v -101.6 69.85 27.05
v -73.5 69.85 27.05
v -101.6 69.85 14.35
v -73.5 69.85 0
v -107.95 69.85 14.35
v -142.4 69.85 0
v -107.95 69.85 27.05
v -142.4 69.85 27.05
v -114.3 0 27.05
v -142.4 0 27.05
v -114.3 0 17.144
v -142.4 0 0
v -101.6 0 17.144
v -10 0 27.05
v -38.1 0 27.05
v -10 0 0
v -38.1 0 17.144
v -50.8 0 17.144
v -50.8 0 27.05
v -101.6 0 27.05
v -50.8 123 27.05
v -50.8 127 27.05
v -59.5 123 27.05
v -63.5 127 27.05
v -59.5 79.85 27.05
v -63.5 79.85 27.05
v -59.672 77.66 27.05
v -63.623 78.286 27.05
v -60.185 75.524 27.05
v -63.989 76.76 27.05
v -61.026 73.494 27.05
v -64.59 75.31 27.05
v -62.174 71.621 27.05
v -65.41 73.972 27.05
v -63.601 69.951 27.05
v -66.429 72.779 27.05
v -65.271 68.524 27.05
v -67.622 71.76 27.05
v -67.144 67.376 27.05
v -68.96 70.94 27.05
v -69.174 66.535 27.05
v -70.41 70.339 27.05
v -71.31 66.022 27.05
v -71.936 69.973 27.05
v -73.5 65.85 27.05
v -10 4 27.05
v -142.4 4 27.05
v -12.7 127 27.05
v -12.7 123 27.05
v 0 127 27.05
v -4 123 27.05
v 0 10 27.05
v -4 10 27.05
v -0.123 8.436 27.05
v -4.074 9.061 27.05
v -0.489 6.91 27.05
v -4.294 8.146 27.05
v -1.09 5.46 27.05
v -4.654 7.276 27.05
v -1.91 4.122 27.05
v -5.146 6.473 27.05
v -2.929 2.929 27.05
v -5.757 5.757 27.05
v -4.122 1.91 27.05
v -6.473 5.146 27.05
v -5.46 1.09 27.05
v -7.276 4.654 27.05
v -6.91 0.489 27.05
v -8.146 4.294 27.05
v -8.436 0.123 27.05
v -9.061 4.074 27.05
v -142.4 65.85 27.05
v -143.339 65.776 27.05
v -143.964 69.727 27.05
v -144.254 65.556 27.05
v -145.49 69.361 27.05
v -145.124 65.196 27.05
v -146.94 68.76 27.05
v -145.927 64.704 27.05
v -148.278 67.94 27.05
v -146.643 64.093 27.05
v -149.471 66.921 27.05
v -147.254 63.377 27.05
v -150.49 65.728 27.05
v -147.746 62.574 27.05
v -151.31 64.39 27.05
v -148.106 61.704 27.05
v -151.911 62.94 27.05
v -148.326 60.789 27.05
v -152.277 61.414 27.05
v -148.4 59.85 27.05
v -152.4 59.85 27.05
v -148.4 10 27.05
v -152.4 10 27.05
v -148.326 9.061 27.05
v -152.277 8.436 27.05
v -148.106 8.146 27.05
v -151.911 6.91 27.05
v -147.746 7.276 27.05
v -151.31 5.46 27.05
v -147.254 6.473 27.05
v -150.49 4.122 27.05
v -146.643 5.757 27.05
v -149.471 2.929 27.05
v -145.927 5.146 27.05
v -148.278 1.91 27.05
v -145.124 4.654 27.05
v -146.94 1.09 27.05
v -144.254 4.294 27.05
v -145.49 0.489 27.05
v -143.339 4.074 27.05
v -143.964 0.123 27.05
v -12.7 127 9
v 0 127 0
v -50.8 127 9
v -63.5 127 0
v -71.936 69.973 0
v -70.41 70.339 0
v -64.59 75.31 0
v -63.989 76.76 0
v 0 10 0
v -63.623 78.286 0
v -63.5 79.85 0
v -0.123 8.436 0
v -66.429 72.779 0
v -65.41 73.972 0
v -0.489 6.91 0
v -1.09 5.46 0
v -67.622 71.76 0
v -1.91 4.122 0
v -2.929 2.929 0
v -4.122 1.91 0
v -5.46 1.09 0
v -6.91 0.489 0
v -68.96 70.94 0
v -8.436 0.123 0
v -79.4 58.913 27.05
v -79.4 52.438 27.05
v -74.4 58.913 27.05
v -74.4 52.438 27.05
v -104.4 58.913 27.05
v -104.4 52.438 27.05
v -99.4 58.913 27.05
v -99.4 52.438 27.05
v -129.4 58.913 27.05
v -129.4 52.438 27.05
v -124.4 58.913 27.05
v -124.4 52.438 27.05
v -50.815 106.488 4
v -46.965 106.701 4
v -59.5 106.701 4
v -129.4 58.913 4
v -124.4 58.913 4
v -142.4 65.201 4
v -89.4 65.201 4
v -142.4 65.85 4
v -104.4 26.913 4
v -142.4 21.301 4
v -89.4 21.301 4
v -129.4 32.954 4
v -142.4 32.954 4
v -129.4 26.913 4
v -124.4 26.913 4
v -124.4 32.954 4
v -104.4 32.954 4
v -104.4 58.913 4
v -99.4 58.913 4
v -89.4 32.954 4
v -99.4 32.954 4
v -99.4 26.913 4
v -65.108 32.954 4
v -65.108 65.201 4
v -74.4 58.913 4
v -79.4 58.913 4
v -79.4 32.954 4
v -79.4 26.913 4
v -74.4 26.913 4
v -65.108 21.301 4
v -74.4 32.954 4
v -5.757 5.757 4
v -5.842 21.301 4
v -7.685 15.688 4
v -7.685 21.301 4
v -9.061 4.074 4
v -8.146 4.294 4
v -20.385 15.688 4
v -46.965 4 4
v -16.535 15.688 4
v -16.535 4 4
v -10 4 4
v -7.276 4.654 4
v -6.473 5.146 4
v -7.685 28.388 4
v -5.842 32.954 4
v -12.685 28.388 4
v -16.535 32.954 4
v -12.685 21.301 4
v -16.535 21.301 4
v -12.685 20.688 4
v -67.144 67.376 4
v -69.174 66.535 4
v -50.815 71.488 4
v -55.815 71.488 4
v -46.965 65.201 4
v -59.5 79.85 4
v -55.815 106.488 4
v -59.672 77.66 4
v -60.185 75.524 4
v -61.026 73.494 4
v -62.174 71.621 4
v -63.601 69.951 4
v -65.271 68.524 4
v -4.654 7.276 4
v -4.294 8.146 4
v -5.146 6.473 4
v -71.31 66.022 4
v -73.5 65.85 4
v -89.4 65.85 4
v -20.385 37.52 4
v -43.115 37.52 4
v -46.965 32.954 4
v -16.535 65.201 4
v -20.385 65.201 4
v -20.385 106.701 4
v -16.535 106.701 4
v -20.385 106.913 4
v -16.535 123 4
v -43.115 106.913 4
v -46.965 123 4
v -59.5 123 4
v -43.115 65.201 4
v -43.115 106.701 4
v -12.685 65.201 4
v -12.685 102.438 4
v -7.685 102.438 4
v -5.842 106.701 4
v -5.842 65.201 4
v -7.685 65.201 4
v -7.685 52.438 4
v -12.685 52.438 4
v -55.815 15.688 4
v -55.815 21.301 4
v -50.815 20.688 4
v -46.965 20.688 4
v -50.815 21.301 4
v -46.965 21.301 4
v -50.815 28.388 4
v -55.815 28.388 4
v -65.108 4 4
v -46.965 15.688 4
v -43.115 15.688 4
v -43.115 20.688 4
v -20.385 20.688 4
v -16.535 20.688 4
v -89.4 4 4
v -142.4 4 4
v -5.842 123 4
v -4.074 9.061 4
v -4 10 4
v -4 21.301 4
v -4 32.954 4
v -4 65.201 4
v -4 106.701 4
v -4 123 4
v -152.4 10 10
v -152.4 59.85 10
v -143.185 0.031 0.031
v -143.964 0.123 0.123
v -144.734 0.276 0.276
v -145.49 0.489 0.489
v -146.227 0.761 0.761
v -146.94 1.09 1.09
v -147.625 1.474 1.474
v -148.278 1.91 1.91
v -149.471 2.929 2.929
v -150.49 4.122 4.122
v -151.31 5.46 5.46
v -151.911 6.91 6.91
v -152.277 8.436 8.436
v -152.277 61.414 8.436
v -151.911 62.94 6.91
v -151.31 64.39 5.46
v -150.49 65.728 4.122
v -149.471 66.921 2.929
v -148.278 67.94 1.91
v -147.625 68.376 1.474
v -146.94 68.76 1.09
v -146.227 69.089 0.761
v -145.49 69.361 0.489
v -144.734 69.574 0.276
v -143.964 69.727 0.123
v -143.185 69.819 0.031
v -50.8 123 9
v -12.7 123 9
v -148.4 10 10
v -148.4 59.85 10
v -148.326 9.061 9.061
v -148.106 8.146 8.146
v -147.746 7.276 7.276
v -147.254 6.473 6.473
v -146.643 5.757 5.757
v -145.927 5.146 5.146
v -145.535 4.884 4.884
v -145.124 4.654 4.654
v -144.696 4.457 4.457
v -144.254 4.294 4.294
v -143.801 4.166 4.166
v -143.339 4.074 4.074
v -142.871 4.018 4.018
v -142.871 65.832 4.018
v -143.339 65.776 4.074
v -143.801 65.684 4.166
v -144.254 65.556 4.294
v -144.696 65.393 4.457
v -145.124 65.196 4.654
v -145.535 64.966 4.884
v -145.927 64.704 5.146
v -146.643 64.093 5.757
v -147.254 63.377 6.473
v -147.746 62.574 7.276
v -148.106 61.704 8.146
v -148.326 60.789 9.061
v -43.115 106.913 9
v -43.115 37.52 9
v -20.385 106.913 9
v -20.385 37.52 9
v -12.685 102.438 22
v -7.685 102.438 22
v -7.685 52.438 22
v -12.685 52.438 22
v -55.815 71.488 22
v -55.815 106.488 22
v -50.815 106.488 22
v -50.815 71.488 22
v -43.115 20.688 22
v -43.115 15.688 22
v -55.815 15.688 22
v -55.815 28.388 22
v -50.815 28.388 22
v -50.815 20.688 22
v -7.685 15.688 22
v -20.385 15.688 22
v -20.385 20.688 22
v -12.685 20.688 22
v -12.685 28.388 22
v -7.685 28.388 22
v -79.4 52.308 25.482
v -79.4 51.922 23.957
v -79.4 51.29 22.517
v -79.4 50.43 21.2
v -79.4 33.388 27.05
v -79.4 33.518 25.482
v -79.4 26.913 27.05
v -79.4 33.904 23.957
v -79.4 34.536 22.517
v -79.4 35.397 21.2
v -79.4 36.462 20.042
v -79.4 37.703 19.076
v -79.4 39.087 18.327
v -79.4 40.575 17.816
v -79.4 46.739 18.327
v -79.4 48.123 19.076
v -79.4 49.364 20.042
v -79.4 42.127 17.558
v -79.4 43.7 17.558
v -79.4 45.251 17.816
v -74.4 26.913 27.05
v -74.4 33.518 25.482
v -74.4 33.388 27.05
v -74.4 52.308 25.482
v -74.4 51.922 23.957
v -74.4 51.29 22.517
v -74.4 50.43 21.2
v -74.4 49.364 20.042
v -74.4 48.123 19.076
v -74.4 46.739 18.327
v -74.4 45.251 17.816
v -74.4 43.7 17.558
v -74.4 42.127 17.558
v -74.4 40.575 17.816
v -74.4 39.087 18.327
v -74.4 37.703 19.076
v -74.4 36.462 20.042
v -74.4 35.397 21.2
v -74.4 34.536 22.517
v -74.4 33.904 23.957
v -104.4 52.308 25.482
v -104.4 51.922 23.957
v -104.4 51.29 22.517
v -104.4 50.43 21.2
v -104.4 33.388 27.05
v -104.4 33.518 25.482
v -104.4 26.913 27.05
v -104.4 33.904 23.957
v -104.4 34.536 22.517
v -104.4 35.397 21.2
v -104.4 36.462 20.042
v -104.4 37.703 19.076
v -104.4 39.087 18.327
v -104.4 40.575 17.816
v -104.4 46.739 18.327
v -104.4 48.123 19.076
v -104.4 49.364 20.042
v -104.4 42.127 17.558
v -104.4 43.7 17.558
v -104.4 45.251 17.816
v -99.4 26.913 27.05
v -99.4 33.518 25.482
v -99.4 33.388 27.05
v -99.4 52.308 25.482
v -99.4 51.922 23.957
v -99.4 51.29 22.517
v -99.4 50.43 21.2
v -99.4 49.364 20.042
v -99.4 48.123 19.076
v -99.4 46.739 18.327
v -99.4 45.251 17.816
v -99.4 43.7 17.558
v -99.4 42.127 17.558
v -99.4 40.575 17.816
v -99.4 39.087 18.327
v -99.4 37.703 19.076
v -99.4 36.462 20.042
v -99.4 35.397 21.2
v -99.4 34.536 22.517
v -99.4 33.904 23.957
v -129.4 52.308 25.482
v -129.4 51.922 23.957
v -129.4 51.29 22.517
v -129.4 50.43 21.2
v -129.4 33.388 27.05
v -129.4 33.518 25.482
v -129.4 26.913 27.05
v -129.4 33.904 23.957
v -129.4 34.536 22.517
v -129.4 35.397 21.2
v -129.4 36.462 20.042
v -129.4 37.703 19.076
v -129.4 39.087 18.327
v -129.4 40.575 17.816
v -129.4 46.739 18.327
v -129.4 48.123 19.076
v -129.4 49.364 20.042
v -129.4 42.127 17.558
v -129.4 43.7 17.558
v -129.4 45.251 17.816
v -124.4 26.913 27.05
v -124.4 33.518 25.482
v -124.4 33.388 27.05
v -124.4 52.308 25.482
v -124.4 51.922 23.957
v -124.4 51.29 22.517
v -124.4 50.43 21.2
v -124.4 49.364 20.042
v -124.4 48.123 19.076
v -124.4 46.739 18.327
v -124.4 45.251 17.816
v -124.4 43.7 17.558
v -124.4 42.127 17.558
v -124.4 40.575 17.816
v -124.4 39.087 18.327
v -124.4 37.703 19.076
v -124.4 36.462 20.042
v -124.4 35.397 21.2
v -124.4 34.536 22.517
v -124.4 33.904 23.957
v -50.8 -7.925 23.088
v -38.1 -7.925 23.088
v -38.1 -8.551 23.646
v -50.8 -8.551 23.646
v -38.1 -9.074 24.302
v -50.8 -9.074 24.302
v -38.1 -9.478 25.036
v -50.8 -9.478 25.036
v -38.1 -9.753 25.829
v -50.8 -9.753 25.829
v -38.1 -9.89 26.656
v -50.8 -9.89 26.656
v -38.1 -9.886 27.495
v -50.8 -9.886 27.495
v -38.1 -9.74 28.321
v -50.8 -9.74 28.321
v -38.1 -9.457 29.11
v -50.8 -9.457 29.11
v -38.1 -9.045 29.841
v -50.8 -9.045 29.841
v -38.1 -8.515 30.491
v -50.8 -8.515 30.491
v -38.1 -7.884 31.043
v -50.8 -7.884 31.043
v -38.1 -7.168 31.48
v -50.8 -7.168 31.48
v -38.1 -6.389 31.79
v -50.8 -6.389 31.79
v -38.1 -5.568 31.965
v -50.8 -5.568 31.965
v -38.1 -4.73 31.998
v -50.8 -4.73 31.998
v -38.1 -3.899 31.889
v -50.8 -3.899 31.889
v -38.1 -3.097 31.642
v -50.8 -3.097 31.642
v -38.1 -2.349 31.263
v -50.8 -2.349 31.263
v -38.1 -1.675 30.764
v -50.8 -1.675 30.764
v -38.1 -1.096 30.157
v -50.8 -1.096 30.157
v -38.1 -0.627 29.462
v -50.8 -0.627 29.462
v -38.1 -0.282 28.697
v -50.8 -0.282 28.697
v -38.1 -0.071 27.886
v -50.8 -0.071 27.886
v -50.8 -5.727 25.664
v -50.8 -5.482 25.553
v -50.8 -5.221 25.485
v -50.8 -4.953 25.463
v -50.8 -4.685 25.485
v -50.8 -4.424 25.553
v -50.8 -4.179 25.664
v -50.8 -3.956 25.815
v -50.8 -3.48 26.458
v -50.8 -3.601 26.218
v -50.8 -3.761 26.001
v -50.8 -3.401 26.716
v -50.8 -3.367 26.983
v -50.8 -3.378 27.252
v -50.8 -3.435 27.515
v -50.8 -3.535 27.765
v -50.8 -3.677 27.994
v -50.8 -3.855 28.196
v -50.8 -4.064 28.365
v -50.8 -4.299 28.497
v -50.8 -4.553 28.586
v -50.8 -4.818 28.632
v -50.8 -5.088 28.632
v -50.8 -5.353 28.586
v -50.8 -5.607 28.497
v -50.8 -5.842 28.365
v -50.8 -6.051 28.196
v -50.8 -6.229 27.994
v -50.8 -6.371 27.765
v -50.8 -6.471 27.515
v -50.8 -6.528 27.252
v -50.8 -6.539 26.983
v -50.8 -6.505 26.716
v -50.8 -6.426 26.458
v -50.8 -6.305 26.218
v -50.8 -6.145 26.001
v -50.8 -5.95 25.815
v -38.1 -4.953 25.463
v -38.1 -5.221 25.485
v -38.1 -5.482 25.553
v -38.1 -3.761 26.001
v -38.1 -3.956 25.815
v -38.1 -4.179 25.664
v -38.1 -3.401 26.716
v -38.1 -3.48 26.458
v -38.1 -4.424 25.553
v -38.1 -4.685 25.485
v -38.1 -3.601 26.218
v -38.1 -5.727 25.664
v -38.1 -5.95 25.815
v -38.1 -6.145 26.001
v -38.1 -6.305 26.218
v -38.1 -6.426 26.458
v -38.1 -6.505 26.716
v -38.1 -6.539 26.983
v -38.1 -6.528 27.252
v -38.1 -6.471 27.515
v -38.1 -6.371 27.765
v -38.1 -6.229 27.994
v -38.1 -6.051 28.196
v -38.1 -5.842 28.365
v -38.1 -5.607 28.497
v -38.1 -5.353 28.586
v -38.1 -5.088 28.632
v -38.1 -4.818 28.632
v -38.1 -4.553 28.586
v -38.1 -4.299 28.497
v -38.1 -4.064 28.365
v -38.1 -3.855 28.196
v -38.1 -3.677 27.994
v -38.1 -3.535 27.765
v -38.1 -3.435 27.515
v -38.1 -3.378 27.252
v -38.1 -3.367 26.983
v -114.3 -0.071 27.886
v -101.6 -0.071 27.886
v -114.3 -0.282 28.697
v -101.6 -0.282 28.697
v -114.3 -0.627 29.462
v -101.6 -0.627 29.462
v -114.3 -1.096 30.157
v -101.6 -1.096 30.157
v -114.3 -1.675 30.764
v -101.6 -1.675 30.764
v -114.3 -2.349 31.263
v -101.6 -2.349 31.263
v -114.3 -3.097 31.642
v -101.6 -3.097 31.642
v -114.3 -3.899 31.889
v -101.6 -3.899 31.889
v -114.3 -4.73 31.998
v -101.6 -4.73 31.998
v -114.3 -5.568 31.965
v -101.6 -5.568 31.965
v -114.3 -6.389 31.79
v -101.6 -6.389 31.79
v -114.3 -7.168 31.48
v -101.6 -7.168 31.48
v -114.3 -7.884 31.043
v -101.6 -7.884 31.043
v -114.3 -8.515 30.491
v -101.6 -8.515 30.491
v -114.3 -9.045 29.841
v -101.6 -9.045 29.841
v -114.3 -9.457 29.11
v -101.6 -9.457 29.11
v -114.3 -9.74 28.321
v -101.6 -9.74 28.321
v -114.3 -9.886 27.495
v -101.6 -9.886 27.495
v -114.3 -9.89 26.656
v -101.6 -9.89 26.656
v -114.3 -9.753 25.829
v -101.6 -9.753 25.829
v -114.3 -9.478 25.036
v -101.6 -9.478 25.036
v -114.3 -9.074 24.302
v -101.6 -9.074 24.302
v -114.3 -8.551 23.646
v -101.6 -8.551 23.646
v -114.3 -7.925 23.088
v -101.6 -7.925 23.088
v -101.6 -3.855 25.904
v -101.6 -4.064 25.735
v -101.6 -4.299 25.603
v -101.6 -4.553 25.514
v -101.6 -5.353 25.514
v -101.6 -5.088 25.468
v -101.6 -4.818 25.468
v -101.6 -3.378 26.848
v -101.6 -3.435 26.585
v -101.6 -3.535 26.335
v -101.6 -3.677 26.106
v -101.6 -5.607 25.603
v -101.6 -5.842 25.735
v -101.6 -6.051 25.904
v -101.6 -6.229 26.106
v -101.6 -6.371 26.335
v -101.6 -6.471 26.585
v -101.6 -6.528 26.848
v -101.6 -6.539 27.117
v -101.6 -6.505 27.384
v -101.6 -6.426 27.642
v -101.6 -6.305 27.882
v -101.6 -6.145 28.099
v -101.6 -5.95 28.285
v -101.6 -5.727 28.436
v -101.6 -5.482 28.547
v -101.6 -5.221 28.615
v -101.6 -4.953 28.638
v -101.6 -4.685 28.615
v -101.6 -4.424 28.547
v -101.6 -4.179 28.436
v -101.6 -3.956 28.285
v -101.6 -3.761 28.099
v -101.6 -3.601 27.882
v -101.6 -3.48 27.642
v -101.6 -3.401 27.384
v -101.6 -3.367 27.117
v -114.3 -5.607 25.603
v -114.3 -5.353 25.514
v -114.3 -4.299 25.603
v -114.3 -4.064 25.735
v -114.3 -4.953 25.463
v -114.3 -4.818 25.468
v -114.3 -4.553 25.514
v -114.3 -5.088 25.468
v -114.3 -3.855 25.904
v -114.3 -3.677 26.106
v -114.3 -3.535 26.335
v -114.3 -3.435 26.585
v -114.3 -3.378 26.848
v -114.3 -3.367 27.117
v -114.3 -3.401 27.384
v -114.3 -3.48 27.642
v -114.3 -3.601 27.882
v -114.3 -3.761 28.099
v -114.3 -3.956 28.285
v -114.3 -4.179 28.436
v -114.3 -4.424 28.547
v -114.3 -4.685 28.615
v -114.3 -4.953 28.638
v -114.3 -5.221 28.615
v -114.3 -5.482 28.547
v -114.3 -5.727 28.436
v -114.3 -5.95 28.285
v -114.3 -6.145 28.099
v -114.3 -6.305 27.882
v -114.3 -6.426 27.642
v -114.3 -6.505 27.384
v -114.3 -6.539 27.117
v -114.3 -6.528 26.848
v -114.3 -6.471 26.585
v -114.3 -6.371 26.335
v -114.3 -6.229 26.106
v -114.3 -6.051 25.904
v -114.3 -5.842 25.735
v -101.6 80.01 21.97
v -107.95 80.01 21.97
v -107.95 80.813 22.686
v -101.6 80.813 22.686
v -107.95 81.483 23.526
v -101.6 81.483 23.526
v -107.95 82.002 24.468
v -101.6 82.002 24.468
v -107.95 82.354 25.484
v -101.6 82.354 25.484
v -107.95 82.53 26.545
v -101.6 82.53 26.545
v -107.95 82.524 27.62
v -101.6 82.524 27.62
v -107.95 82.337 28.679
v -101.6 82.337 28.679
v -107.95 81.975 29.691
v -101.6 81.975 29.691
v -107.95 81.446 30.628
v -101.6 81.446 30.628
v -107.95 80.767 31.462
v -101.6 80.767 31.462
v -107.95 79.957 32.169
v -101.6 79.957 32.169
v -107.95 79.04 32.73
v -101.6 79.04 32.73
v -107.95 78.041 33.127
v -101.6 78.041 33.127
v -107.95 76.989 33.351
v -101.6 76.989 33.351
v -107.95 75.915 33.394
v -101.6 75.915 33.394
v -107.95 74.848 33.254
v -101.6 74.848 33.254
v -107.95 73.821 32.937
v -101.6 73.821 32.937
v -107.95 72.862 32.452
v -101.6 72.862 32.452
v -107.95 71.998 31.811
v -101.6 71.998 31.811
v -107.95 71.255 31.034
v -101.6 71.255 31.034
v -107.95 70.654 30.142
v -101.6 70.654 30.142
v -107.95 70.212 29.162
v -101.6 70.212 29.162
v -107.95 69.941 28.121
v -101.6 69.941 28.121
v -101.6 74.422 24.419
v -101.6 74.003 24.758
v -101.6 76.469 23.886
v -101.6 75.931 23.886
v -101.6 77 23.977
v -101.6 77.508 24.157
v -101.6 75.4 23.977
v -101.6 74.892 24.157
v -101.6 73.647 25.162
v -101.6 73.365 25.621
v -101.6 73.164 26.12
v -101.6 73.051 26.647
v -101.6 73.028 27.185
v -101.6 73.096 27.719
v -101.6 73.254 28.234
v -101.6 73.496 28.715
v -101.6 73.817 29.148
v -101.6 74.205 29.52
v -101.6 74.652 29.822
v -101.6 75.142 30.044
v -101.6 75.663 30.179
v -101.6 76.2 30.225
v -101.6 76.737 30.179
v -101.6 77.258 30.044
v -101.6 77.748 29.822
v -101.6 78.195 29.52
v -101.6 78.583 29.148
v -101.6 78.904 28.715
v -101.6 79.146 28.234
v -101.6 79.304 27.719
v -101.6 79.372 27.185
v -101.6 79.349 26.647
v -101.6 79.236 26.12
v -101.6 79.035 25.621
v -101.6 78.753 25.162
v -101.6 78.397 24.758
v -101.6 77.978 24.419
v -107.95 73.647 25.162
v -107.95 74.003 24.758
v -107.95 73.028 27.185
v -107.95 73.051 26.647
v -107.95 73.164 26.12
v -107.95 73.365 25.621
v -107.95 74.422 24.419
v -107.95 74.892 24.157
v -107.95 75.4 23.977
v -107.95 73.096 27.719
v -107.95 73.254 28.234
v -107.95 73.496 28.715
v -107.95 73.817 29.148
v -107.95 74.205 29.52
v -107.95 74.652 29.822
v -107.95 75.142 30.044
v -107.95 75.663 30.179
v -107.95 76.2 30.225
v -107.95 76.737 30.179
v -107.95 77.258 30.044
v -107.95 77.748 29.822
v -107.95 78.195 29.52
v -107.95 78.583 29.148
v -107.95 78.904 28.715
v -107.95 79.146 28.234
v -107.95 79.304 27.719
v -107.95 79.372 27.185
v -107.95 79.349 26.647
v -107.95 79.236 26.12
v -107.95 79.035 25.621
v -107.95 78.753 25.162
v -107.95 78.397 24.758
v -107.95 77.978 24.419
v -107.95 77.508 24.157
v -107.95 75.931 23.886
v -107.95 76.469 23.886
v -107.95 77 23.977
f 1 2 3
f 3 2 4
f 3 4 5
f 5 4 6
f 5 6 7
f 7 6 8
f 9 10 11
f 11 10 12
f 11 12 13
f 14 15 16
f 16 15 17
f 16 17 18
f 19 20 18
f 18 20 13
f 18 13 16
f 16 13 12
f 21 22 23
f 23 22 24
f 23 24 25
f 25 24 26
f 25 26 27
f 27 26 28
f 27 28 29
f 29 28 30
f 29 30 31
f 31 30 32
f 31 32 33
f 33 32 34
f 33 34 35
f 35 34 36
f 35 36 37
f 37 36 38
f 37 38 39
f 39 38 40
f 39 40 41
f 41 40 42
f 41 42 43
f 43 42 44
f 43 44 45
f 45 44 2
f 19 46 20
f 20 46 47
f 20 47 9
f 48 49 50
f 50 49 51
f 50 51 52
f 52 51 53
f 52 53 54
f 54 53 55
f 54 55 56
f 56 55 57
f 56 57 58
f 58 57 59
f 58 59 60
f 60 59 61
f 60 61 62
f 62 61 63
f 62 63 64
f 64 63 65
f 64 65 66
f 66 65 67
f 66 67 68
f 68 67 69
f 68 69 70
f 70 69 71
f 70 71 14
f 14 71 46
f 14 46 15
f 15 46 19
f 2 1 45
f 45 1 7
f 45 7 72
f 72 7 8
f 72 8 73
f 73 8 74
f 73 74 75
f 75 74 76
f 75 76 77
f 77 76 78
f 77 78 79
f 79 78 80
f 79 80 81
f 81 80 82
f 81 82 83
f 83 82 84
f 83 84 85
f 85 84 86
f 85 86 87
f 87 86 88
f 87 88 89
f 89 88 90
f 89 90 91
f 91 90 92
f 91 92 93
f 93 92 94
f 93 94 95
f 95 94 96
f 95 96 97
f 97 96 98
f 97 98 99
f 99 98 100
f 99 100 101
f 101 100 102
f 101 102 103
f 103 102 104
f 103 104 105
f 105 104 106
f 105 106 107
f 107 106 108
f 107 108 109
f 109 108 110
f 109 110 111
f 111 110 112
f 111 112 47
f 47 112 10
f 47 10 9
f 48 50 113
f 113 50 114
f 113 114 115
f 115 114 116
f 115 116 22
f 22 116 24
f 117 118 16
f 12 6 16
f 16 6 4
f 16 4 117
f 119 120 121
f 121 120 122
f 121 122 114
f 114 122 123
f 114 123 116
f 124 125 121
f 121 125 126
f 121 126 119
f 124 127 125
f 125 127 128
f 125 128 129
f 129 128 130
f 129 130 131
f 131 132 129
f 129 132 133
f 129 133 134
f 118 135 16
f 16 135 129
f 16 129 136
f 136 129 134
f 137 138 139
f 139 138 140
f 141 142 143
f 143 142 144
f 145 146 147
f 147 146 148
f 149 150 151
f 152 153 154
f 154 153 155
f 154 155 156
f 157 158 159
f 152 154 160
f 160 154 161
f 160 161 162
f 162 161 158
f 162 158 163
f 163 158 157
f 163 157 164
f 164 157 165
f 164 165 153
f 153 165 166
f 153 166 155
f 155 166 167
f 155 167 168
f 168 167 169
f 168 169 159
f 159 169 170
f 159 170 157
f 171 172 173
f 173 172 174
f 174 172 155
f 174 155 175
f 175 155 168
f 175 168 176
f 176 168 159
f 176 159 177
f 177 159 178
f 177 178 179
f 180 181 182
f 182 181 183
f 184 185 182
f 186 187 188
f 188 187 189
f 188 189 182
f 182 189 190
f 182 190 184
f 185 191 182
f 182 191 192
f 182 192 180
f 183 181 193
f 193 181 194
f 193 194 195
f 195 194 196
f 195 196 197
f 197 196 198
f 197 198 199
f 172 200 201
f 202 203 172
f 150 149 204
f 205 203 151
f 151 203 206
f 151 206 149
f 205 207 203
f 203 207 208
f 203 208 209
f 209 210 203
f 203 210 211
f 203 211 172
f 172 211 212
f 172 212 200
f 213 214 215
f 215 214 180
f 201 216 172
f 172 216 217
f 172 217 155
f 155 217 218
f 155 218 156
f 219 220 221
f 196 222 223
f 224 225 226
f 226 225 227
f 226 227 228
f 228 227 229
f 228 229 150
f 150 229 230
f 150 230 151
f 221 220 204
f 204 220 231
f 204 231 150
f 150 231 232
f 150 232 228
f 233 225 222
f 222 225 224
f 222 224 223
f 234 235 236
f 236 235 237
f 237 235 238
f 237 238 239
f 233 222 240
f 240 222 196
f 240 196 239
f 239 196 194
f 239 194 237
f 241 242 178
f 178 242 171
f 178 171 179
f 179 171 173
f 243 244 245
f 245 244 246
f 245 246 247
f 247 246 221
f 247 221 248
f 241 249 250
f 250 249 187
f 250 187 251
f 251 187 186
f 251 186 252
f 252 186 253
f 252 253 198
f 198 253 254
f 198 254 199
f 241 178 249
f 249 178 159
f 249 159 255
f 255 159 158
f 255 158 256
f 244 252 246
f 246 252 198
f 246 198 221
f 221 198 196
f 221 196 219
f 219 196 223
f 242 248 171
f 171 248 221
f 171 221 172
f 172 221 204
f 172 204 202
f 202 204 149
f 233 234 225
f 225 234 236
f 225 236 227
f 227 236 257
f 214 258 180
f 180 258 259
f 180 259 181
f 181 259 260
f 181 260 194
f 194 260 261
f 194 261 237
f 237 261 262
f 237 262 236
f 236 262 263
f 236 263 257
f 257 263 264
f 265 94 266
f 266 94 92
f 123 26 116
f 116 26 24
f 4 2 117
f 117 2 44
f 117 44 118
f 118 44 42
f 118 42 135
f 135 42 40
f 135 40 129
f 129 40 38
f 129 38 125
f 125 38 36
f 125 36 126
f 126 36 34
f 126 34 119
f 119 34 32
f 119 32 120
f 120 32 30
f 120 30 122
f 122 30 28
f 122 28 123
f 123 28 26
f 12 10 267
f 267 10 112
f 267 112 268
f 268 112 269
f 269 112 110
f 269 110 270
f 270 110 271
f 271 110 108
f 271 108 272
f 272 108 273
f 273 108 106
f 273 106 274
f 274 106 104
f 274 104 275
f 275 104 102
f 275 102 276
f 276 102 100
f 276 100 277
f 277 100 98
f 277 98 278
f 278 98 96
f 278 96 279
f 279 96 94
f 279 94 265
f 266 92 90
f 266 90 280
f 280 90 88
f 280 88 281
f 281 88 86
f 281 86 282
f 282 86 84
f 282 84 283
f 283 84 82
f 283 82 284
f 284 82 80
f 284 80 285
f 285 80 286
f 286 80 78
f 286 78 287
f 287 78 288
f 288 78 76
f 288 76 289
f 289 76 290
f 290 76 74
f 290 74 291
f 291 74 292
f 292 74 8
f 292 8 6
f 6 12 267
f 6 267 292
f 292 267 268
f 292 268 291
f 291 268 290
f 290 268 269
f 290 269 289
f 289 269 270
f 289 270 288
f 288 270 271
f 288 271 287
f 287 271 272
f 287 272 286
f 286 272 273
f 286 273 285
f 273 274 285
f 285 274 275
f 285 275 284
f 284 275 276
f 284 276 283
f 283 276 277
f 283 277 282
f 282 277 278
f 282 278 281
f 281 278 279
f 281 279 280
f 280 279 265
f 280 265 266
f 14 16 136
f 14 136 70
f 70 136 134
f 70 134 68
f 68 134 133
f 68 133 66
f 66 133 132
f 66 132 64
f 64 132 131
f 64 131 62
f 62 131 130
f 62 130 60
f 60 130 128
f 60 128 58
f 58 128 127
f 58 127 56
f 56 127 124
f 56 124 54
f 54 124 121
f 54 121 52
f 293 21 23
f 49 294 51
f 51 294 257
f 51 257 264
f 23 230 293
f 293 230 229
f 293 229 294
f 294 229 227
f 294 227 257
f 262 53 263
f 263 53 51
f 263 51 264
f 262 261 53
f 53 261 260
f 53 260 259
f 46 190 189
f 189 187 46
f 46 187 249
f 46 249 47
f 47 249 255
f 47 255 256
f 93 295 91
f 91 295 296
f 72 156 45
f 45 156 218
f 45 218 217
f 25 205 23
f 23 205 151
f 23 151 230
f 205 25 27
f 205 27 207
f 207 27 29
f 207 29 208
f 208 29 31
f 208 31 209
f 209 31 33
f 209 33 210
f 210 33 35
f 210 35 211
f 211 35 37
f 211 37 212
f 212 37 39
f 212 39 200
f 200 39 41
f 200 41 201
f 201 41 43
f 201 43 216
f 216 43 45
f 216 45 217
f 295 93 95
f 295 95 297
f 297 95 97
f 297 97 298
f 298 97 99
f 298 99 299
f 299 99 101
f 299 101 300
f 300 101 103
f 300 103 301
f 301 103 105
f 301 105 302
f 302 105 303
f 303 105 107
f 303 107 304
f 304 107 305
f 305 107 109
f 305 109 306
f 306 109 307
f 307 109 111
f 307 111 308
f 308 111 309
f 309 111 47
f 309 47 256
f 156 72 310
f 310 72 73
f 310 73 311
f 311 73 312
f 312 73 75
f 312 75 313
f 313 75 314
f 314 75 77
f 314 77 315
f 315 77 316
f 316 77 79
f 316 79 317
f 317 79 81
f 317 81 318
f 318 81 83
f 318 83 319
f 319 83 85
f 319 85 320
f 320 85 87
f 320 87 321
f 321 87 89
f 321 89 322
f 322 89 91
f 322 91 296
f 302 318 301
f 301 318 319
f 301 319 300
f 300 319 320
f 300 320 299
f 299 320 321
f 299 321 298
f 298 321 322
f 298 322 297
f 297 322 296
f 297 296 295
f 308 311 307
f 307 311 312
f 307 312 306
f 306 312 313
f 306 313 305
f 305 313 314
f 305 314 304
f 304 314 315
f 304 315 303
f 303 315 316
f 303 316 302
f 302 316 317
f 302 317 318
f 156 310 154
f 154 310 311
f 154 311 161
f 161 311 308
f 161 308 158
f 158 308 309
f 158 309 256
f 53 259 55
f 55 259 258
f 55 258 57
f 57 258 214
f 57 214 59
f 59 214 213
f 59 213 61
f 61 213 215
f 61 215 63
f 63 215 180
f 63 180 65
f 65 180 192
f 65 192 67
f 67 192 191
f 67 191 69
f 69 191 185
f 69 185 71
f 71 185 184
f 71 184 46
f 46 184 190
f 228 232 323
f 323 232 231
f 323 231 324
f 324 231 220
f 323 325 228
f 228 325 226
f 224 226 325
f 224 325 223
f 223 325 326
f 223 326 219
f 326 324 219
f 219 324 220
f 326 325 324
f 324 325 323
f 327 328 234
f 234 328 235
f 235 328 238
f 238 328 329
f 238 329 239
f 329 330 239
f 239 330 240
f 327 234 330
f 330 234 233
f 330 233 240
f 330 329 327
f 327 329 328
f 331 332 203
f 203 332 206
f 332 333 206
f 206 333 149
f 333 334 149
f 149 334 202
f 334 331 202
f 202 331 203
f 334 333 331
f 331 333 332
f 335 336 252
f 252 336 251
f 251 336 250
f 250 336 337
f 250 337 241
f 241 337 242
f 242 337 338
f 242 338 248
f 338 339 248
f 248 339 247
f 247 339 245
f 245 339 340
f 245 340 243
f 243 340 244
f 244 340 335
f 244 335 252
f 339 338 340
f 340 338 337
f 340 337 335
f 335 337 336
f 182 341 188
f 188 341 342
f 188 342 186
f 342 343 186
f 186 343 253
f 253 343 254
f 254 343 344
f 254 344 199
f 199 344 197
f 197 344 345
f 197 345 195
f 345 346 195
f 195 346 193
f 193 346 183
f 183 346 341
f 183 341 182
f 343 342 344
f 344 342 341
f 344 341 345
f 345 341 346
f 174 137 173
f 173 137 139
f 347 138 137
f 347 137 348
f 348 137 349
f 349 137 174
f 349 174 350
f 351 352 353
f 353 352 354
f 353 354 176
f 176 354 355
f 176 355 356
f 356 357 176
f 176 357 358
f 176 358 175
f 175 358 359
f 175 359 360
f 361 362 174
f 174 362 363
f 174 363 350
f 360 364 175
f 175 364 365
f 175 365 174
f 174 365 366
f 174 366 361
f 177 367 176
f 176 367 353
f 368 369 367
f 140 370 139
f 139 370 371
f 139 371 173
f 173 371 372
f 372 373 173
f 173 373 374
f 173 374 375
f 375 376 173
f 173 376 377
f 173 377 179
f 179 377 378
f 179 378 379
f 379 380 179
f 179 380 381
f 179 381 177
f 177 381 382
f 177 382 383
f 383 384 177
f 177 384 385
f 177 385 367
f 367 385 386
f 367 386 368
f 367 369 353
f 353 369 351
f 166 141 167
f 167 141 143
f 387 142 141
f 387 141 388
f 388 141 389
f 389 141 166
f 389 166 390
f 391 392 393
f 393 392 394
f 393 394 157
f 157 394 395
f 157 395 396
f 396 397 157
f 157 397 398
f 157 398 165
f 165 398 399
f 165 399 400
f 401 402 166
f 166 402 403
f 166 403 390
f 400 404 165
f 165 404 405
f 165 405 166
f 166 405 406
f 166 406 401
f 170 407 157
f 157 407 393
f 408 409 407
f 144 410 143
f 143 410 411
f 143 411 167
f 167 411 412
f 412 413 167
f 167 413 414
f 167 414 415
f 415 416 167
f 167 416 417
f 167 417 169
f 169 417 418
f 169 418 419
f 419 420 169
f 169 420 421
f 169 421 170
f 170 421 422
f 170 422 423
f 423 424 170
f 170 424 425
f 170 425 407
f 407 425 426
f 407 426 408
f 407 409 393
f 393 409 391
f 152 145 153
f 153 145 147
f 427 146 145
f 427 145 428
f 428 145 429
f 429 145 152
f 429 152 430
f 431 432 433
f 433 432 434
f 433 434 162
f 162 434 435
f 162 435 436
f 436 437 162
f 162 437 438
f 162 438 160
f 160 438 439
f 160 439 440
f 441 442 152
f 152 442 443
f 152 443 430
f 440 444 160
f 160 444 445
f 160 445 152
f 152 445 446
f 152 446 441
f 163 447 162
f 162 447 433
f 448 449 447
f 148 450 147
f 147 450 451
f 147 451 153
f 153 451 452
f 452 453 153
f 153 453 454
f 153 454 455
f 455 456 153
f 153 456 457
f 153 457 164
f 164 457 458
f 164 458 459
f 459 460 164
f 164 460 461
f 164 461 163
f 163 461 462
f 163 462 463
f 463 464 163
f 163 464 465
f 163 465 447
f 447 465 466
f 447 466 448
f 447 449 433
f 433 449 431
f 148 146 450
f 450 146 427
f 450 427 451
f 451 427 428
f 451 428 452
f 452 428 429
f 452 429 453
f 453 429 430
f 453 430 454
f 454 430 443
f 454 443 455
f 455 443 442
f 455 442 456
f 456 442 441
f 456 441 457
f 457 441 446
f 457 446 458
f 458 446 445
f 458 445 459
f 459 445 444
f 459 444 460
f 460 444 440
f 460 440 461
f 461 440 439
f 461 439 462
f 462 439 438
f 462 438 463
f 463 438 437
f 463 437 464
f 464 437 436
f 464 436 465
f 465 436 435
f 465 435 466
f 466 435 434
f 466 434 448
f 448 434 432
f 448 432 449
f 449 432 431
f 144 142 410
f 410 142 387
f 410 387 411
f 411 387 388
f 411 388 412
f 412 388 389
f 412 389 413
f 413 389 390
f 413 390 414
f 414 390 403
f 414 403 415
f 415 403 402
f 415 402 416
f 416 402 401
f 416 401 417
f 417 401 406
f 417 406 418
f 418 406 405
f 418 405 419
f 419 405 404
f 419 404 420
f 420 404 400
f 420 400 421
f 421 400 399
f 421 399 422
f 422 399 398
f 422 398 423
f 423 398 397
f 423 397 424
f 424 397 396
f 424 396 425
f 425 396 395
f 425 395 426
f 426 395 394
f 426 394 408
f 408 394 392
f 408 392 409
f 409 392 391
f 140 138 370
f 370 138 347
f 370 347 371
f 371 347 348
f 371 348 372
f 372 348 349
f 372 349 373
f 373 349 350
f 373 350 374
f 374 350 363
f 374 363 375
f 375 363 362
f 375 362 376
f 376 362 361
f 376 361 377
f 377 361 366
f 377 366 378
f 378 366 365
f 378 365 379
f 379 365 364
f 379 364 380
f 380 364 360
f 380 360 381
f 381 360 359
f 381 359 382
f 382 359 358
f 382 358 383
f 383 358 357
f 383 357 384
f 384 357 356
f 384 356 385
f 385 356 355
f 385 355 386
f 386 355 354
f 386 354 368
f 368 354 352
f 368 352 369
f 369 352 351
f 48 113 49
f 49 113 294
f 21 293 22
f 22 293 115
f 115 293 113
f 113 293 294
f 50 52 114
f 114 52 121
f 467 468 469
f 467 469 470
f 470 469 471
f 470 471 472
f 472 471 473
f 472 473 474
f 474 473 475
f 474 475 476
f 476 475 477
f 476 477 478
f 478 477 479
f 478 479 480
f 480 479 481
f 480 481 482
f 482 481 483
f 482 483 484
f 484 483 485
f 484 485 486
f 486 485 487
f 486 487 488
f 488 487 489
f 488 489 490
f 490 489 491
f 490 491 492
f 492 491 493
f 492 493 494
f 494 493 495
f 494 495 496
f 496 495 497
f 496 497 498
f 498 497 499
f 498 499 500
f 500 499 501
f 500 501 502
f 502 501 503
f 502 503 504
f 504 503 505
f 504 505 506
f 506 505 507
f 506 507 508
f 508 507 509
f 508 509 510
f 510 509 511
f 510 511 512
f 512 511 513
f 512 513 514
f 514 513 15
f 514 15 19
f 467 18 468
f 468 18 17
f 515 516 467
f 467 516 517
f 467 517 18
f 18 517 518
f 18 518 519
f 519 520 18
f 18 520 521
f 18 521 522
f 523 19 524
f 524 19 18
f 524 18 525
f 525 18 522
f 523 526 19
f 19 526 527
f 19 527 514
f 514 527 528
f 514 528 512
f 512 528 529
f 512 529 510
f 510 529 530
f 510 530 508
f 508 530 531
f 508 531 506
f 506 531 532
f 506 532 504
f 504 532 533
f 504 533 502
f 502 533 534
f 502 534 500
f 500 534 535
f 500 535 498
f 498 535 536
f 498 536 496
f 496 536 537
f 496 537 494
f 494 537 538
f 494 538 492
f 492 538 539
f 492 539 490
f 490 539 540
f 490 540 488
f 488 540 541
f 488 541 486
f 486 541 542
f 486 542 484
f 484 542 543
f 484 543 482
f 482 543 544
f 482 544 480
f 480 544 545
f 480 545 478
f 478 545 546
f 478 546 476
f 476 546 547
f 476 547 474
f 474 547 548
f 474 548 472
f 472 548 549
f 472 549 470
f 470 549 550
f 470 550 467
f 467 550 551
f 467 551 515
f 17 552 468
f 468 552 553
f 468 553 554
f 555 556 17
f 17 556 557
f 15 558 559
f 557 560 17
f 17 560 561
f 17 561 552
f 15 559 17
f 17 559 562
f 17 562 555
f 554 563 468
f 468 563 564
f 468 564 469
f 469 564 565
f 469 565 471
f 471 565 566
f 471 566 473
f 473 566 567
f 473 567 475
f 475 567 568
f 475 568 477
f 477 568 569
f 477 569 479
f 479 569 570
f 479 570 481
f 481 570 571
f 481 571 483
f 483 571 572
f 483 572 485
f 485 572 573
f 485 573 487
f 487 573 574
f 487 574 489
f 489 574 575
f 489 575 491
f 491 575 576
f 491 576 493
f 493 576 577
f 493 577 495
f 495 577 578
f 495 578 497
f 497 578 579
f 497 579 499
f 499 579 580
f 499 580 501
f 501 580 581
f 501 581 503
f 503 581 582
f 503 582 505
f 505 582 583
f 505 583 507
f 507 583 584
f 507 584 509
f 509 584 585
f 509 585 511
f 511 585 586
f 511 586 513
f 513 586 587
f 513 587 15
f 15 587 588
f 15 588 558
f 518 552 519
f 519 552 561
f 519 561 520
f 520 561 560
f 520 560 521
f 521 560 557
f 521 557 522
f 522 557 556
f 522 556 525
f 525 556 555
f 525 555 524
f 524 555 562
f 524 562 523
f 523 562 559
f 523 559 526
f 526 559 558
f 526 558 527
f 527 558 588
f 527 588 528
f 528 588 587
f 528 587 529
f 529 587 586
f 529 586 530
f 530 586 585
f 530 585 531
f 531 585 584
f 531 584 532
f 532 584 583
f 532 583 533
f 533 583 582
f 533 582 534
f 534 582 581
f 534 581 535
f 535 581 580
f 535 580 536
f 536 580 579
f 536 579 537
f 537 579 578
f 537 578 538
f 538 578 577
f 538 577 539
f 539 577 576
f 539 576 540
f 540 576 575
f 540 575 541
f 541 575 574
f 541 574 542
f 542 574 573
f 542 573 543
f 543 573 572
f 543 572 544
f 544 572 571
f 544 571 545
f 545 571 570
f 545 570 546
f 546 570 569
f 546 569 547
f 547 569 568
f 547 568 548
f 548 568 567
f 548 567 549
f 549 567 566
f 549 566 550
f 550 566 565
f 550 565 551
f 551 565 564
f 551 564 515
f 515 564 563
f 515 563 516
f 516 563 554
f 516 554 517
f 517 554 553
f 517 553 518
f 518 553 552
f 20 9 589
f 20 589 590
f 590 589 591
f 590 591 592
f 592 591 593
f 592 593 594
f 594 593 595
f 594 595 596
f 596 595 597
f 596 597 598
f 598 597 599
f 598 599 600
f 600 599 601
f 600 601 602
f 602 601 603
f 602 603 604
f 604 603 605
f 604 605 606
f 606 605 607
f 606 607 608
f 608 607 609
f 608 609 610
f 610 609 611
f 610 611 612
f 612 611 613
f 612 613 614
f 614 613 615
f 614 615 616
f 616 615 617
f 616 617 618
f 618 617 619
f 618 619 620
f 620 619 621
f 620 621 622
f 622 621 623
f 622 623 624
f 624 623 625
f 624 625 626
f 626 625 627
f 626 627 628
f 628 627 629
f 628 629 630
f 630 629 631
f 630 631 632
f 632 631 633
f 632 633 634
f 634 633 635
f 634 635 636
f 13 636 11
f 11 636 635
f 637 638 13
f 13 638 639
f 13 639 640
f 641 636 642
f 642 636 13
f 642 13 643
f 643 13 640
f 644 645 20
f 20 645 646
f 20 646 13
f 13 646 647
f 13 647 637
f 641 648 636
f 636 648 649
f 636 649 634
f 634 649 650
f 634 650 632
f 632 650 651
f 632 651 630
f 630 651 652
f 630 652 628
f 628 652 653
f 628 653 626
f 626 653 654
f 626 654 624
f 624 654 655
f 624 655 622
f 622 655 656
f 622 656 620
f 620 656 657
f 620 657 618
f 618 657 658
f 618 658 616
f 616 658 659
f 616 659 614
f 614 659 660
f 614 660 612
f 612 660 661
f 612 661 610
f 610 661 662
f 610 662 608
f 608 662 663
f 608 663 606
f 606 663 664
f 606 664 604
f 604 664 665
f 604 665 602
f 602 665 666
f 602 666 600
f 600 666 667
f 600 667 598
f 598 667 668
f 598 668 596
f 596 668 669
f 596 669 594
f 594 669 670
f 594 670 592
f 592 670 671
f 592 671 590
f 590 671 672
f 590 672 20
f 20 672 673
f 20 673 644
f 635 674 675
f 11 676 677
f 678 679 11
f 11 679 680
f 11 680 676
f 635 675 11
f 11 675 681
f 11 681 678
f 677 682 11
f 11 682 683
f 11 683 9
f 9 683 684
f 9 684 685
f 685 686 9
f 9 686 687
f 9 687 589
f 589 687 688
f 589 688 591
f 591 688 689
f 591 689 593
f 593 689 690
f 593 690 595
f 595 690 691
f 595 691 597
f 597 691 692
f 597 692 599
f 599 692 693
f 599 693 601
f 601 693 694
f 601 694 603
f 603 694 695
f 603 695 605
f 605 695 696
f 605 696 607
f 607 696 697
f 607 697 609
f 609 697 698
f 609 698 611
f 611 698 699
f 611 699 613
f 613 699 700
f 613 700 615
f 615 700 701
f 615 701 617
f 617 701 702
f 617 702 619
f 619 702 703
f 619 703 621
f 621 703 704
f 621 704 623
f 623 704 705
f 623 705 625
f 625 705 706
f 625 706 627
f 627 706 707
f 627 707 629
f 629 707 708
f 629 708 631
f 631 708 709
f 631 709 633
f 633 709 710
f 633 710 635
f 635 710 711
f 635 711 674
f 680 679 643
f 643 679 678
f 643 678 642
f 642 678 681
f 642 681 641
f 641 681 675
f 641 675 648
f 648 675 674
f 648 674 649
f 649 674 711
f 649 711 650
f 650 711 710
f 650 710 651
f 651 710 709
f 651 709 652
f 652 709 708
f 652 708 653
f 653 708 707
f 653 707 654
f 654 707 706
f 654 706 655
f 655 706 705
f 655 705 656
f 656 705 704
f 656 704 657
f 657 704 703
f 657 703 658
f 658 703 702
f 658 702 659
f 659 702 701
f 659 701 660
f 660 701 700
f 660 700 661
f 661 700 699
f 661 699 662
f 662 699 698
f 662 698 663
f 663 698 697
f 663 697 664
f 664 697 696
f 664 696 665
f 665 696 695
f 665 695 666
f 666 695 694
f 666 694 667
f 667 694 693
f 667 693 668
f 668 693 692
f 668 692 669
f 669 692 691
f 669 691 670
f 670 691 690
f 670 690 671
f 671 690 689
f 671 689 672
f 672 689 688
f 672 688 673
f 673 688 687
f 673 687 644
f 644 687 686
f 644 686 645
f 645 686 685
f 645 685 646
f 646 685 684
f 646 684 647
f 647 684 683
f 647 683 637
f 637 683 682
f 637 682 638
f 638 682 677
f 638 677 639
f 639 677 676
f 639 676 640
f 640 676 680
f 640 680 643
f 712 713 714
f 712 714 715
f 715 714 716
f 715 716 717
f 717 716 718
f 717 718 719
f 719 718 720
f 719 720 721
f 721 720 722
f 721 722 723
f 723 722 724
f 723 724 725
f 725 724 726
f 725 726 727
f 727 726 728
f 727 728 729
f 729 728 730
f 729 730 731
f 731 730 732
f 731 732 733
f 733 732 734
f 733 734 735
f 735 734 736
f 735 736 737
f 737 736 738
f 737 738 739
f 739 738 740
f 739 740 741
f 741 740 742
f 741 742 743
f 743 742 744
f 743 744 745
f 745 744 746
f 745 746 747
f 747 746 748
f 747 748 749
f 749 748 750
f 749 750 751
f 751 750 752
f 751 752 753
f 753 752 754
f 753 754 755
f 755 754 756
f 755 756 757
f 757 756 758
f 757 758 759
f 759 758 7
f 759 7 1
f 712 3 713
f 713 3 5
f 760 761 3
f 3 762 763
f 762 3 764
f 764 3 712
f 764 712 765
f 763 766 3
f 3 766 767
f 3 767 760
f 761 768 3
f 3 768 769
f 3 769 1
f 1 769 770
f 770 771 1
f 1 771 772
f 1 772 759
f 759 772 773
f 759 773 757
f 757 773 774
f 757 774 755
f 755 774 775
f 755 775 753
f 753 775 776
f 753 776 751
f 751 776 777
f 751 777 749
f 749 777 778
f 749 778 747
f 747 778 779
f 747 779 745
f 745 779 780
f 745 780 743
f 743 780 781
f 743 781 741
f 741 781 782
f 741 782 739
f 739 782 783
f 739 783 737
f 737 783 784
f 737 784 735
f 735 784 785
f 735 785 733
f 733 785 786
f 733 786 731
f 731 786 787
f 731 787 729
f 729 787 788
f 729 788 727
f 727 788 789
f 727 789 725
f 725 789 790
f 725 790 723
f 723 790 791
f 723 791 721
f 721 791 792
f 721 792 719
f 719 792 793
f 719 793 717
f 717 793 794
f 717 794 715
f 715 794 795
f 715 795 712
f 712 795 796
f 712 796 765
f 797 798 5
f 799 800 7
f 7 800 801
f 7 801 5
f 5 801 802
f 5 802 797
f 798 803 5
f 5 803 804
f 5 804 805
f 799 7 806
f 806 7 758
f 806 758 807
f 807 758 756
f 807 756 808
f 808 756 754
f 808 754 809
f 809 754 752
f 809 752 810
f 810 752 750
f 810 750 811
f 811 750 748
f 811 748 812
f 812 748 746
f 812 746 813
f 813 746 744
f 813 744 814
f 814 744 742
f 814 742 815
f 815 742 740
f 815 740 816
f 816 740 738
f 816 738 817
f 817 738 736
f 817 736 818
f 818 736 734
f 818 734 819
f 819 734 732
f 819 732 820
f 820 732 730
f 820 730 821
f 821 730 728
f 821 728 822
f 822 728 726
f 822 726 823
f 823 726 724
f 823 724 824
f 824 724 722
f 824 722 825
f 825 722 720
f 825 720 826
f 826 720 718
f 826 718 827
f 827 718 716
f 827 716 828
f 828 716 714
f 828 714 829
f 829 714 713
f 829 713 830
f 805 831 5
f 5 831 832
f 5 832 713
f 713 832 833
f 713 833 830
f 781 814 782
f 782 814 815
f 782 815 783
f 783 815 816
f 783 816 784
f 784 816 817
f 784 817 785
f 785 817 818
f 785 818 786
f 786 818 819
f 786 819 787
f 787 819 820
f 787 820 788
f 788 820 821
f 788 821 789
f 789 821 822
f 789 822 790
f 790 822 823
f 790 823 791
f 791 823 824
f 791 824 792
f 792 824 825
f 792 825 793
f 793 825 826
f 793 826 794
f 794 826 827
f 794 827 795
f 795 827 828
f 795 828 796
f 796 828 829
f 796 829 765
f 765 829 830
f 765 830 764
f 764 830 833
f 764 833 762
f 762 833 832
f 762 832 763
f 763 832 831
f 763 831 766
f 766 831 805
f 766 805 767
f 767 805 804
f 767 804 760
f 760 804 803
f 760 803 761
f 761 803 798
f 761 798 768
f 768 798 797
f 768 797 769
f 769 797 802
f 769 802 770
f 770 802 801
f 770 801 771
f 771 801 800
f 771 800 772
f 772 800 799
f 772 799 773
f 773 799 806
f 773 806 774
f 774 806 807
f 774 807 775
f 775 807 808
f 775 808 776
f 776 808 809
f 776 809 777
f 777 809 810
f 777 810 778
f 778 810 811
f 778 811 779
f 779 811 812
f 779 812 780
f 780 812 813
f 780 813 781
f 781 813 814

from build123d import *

# Parameters (mm, degrees)
SALIENTE_EXTRUIR1_DEPTH = 54.1
REDONDEO1_R             = 10
CROQUIS2_W              = 27.05
CROQUIS2_H              = 127
CORTAR_EXTRUIR1_DEPTH   = 206.624828267
VACIADO1_T              = -4
CROQUIS3_W              = 22.730580246
CROQUIS3_H              = 69.392963169
SALIENTE_EXTRUIR2_DEPTH = 5
CROQUIS3_3_W            = 5
CROQUIS3_3_H            = 50
CROQUIS3_3_H_2          = 35
SALIENTE_EXTRUIR3_DEPTH = 18
CROQUIS4_W              = 5
CROQUIS4_H              = 32.000123075
SALIENTE_EXTRUIR4_DEPTH = 23.05
CORTAR_EXTRUIR2_REACH   = 185.317
CROQUIS5_R              = 9.525
CROQUIS6_W              = 38.1
CROQUIS6_H              = 42.277753805
CORTAR_EXTRUIR3_DEPTH   = 18
CROQUIS7_W              = 180.240941947
CROQUIS7_H              = 148.875136133
CORTAR_EXTRUIR4_DEPTH   = 201.216039567
SALIENTE_EXTRUIR5_DEPTH = 12.7
CROQUIS9_R              = 1.5875
CORTAR_EXTRUIR5_DEPTH   = 174.832338789
CROQUIS10_R             = 3.175
SALIENTE_EXTRUIR6_DEPTH = 6.35


with BuildPart() as part:
    # Croquis1 → Saliente-Extruir1 (new body)
    with BuildSketch(Plane.XY):
        Polygon((0, 0), (0, 127), (63.5, 127), (63.5, 69.85), (152.4, 69.85), (152.4, 0), align=None)
    extrude(amount=SALIENTE_EXTRUIR1_DEPTH)

    # Redondeo1
    redondeo1_edges = [part.edges().sort_by_distance(p)[0] for p in [
        (63.5, 69.85, 27.05),
        (152.4, 69.85, 27.05),
        (152.4, 0, 27.05),
        (0, 0, 27.05),
        (152.4, 34.925, 0),
    ]]
    fillet(redondeo1_edges, radius=REDONDEO1_R)

    # Croquis2 → Cortar-Extruir1 (cut, through all)
    with BuildSketch(Plane(origin=(152.4, 0, 0), x_dir=(0, 0, -1), z_dir=(1, 0, 0))):
        with Locations((-40.575, 63.5)):
            Rectangle(CROQUIS2_W, CROQUIS2_H)
    extrude(amount=-CORTAR_EXTRUIR1_DEPTH, mode=Mode.SUBTRACT)

    # Vaciado1
    vaciado1_openings = [part.faces().sort_by_distance(p)[0] for p in [
        (64.737748774, 51.223088278, 27.05),
    ]]
    offset(amount=VACIADO1_T, openings=vaciado1_openings)

    # Croquis3 → Saliente-Extruir2 (add)
    with BuildSketch(Plane.XY.offset(4)):
        with Locations((31.75, 72.216754897)):
            Rectangle(CROQUIS3_W, CROQUIS3_H)
    extrude(amount=SALIENTE_EXTRUIR2_DEPTH)

    # Croquis3<3> → Saliente-Extruir3 (add)
    with BuildSketch(Plane.XY.offset(4)):
        with Locations((10.184709877, 77.438130808)):
            Rectangle(CROQUIS3_3_W, CROQUIS3_3_H)
        with Locations((53.315290123, 88.988130808)):
            Rectangle(CROQUIS3_3_W, CROQUIS3_3_H_2)
        Polygon((50.815290123, 20.688130808), (43.115290123, 20.688130808), (43.115290123, 15.688130808), (55.815290123, 15.688130808), (55.815290123, 28.388130808), (50.815290123, 28.388130808), align=None)
        Polygon((20.384709877, 20.688130808), (12.684709877, 20.688130808), (12.684709877, 28.388130808), (7.684709877, 28.388130808), (7.684709877, 15.688130808), (20.384709877, 15.688130808), align=None)
    extrude(amount=SALIENTE_EXTRUIR3_DEPTH)

    # Croquis4 → Saliente-Extruir4 (add)
    with BuildSketch(Plane.XY.offset(4)):
        with Locations((76.9, 42.913130808)):
            Rectangle(CROQUIS4_W, CROQUIS4_H)
        with Locations((101.9, 42.913130808)):
            Rectangle(CROQUIS4_W, CROQUIS4_H)
        with Locations((126.9, 42.913130808)):
            Rectangle(CROQUIS4_W, CROQUIS4_H)
    extrude(amount=SALIENTE_EXTRUIR4_DEPTH)

    # Cortar-Extruir2: up to this face of the body (flat: up to its plane)
    cortar_extruir2_end = Plane(part.part.faces().sort_by_distance((55.815290123, 22.038130808, 13))[0])
    # Croquis5 → Cortar-Extruir2 (cut, up to the picked face)
    with BuildSketch(Plane(origin=(129.4, 0, 0), x_dir=(0, 0, -1), z_dir=(1, 0, 0)), mode=Mode.PRIVATE) as cortar_extruir2_sk1:
        with Locations((-27.05, 42.913130808)):
            Circle(CROQUIS5_R)
    cortar_extruir2_tool1 = split(extrude(cortar_extruir2_sk1.sketch, amount=-CORTAR_EXTRUIR2_REACH, mode=Mode.PRIVATE), bisect_by=cortar_extruir2_end, keep=Keep.BOTH, mode=Mode.PRIVATE)
    add(cortar_extruir2_tool1.solids().sort_by(Axis((129.4, 42.913131, 27.05), (-1, 0, 0)))[0], mode=Mode.SUBTRACT)

    # Croquis6 → Cortar-Extruir3 (cut)
    with BuildSketch(Plane.XZ.offset(-123)):
        with Locations((31.75, 30.138876903)):
            Rectangle(CROQUIS6_W, CROQUIS6_H)
    extrude(amount=-CORTAR_EXTRUIR3_DEPTH, mode=Mode.SUBTRACT)

    # Simetría5: part across plane


with BuildPart() as part_1:
    add(part.part)
    add(part.part.mirror(Plane(origin=(0, 0, 54.1), x_dir=(0, 0, 1), z_dir=(1, 0, 0))))

    # Croquis7 → Cortar-Extruir4 (cut, through all)
    with BuildSketch(Plane.XY.offset(27.05)):
        with Locations((90.120470974, 52.562431934)):
            Rectangle(CROQUIS7_W, CROQUIS7_H)
    extrude(amount=-CORTAR_EXTRUIR4_DEPTH, mode=Mode.SUBTRACT)

    # Croquis8 → Saliente-Extruir5 (add)
    with BuildSketch(Plane(origin=(-38.1, 0, 0), x_dir=(0, 0, -1), z_dir=(1, 0, 0))):
        with BuildLine():
            Line((-27.05, 0), (-17.144, 0))
            Line((-17.144, 0), (-23.0876, -7.9248))
            ThreePointArc((-23.0876, -7.9248), (-31.480097877, -7.168048939), (-27.05, 0))
        make_face()
    saliente_extruir5 = extrude(amount=-SALIENTE_EXTRUIR5_DEPTH)

    # Croquis9 → Cortar-Extruir5 (cut, through all)
    with BuildSketch(Plane(origin=(-38.1, 0, 0), x_dir=(0, 0, -1), z_dir=(1, 0, 0))):
        with Locations((-27.05, -4.953)):
            Circle(CROQUIS9_R)
    cortar_extruir5 = extrude(amount=-CORTAR_EXTRUIR5_DEPTH, mode=Mode.SUBTRACT)

    # Simetría6: Saliente-Extruir5, Cortar-Extruir5 across plane
    add(saliente_extruir5.mirror(Plane(origin=(-76.2, 0, 0), x_dir=(0, 0, 1), z_dir=(1, 0, 0))))
    add(cortar_extruir5.mirror(Plane(origin=(-76.2, 0, 0), x_dir=(0, 0, 1), z_dir=(1, 0, 0))), mode=Mode.SUBTRACT)

    # Croquis10 → Saliente-Extruir6 (add)
    with BuildSketch(Plane.ZY.offset(107.95)):
        with BuildLine():
            Line((27.05, 69.85), (14.35, 69.85))
            Line((14.35, 69.85), (21.97, 80.01))
            ThreePointArc((21.97, 80.01), (32.729612663, 79.039806331), (27.05, 69.85))
        make_face()
        with Locations((27.05, 76.2)):
            Circle(CROQUIS10_R, mode=Mode.SUBTRACT)
    extrude(amount=-SALIENTE_EXTRUIR6_DEPTH)


solid = part_1.part
